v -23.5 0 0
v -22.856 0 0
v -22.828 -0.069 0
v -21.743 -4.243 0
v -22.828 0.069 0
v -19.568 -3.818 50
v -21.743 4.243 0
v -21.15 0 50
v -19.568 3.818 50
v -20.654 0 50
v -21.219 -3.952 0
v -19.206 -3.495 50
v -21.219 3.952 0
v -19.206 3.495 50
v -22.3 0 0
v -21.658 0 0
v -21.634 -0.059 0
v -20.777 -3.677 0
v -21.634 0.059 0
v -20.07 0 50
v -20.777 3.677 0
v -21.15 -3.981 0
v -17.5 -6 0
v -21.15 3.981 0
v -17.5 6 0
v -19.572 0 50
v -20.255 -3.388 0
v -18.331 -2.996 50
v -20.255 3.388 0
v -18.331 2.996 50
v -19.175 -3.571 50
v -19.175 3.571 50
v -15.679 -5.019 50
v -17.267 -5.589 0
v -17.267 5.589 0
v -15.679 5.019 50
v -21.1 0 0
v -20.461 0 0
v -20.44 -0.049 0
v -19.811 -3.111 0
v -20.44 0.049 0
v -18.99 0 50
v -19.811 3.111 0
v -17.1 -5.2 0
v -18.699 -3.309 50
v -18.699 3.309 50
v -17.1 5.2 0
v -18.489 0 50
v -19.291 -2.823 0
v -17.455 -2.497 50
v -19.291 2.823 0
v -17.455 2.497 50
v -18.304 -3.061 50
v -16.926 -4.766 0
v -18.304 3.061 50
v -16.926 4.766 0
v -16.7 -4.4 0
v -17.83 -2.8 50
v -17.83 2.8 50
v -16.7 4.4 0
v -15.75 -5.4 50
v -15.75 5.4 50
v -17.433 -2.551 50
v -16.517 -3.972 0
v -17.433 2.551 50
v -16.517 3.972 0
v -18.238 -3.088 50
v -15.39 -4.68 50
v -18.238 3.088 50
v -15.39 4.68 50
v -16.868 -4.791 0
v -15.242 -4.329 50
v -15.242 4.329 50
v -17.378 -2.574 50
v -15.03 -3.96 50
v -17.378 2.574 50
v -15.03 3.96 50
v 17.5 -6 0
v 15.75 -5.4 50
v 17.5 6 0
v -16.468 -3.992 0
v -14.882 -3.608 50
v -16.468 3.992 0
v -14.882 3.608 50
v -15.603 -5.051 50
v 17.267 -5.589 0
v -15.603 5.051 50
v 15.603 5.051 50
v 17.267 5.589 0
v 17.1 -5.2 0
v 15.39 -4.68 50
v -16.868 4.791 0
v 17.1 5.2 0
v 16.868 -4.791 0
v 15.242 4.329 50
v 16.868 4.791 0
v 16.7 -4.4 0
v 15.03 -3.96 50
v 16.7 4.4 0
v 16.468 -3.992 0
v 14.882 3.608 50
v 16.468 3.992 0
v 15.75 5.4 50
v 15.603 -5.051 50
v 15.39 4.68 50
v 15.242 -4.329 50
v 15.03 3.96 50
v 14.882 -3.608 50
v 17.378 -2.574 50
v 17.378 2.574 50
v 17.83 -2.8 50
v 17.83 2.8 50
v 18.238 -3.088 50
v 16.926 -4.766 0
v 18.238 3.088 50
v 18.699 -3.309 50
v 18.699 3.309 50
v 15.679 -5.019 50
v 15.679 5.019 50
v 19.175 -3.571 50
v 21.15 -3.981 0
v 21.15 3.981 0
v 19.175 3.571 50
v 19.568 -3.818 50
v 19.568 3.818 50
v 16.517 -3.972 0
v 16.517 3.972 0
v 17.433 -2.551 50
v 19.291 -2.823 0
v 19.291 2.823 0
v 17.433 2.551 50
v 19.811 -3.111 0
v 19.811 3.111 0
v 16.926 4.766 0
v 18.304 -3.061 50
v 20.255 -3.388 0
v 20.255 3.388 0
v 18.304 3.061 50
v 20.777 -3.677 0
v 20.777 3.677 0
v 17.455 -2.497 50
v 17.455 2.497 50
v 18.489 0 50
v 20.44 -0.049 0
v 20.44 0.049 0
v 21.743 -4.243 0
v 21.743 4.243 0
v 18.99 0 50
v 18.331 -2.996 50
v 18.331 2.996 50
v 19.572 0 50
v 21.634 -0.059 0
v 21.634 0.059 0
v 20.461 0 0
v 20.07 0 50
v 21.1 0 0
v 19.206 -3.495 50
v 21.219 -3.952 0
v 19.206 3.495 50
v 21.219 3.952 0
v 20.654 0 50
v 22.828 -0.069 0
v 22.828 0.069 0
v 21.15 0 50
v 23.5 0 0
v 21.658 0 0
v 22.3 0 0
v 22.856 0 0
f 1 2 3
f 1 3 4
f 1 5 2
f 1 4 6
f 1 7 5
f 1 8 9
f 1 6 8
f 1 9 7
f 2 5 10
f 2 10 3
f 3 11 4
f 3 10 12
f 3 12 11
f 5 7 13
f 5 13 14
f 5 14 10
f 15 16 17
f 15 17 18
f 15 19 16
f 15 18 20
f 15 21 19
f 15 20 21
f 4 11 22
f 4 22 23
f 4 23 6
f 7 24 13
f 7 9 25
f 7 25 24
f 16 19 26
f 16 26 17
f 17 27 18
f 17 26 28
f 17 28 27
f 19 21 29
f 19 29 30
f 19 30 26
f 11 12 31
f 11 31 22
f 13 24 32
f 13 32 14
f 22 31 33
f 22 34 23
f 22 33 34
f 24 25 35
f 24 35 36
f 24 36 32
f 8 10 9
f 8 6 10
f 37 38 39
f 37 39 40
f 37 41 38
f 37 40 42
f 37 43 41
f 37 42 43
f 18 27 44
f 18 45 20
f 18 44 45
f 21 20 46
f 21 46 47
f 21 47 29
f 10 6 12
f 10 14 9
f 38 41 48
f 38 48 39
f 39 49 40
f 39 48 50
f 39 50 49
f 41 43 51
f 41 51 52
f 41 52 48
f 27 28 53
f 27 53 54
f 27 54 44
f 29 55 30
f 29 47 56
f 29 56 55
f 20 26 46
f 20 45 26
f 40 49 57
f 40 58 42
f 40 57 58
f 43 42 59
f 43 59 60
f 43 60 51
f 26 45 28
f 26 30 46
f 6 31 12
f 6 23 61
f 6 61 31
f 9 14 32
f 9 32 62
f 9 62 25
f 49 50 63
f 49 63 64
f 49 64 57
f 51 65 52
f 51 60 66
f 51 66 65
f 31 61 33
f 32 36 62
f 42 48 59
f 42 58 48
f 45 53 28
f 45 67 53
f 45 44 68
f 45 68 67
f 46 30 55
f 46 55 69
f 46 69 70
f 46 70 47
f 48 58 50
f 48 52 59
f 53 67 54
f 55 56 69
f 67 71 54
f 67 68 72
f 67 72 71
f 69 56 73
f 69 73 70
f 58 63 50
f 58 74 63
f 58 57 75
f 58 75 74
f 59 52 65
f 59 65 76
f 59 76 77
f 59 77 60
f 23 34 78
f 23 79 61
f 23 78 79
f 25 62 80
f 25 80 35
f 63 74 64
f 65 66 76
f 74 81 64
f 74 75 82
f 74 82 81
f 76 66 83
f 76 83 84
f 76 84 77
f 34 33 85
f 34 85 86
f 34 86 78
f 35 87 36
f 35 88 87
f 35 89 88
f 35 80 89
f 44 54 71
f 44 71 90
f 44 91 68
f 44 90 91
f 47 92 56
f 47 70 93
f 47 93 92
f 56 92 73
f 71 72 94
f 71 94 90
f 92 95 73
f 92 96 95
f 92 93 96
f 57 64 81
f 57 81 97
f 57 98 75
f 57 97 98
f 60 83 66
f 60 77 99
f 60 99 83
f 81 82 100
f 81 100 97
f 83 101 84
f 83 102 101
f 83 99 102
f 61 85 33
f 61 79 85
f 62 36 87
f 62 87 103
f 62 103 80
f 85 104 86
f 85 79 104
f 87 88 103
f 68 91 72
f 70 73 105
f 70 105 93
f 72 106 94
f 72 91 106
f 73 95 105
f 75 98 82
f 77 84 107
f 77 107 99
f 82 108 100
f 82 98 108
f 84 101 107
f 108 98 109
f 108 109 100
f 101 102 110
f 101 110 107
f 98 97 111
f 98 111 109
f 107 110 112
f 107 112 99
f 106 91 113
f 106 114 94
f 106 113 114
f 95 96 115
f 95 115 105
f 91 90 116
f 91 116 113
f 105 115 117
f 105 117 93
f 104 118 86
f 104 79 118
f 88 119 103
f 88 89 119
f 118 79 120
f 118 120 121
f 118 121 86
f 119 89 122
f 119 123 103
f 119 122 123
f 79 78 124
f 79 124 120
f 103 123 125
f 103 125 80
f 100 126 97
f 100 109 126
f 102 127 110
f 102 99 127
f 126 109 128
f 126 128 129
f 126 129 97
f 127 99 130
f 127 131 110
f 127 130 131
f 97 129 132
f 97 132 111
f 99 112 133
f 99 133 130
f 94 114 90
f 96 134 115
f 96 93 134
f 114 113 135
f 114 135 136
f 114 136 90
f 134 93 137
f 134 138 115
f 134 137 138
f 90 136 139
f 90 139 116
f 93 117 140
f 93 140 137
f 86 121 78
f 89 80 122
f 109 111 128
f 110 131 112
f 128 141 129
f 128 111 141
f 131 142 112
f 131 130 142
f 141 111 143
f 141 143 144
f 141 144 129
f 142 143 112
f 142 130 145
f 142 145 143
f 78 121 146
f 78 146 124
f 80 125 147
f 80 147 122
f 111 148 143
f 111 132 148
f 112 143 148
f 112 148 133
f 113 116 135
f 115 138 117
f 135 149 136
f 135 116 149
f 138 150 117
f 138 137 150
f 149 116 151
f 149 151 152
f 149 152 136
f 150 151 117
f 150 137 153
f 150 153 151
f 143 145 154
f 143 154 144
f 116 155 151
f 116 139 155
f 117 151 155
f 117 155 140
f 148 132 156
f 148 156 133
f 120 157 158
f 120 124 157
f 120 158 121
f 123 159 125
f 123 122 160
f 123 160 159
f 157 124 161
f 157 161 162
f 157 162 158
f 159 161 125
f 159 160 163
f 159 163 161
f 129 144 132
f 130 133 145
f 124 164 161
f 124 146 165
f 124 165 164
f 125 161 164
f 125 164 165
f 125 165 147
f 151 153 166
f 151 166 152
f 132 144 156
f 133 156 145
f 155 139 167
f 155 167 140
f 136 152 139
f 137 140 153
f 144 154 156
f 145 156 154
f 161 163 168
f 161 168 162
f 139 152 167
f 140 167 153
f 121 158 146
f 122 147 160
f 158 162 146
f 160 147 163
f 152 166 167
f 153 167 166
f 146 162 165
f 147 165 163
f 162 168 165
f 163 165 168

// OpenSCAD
height = 50;

module blade_shape(h, w, e) {
    linear_extrude(height=h, scale=scaling_factor)
        hull() {
            translate([-w/2, 0, 0]) circle(r=e, $fn=8);
            translate([ w/2, 0, 0]) circle(r=e, $fn=8);
        }
}

module blade(h, w, e) {
    difference() {
        blade_shape(h, w, e);
        
        translate([0, 0, -1])
        blade_shape(h+2, w-thickness, e-thickness);
    }
}

nblades = 3; // TODO(ronoaldo): calculate from the factor

width = 35;
edge = 6;
thickness = 0.4;
spacing = 0.4;
scaling_factor = 0.9;

for (i=[0 : nblades-1]) {
    let(w = width-(i*thickness)-(i*spacing), e = edge-(i*thickness)-(i*spacing)) {
        blade(height, w, e);
    }
}
